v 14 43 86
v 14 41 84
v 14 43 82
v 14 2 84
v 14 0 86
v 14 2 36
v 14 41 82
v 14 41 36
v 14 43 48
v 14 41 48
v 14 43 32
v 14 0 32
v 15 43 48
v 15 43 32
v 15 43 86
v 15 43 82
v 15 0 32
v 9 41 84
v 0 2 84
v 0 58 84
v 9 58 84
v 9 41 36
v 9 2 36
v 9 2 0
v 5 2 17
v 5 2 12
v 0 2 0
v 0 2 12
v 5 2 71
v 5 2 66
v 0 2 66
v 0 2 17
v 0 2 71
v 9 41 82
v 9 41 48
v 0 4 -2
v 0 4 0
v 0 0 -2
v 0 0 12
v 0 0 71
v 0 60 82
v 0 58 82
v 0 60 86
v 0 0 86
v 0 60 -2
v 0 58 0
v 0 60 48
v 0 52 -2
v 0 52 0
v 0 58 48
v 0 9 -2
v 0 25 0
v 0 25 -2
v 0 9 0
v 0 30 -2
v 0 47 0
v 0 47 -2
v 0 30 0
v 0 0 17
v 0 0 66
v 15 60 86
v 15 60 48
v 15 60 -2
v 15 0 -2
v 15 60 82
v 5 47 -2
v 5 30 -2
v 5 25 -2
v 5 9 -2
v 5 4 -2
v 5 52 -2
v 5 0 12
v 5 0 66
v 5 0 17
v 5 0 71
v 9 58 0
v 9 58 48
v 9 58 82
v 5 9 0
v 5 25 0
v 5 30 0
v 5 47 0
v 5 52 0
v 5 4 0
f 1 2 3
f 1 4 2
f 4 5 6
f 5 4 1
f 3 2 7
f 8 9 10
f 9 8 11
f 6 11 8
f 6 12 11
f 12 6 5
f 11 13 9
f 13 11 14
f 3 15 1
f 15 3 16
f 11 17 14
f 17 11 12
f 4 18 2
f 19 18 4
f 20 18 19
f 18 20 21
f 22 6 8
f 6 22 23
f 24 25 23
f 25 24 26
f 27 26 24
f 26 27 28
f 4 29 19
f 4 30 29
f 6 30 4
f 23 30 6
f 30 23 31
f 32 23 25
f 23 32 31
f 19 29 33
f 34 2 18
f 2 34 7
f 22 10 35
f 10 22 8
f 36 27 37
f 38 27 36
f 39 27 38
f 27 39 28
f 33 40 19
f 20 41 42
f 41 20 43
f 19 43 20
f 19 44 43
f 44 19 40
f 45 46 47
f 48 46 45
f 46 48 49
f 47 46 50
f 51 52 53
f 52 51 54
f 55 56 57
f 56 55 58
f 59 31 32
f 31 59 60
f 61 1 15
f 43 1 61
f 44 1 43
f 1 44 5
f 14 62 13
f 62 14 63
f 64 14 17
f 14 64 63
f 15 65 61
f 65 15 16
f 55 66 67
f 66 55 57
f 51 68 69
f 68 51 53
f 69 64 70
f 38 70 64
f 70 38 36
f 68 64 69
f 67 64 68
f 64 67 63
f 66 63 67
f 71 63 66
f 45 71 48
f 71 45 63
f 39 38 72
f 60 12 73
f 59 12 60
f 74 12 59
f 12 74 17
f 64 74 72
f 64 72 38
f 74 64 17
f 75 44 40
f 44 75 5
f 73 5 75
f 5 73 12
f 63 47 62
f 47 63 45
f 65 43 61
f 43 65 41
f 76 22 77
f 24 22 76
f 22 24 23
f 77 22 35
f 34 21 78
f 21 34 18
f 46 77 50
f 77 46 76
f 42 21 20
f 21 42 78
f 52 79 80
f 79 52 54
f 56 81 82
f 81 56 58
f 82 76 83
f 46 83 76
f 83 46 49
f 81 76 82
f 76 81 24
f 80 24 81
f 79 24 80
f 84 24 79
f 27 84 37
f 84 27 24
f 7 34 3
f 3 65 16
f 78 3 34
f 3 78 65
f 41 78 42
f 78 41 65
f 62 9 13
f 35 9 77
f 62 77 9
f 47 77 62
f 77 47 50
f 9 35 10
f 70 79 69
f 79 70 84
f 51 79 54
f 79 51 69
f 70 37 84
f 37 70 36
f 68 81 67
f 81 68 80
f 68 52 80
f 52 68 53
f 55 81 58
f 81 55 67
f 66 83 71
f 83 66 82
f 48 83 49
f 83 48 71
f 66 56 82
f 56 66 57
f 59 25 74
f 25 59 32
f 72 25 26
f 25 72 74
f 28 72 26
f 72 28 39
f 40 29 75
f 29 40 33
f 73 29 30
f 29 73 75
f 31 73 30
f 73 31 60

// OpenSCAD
difference() {
    translate([0, 0, -2]){
        cube([15, 60, 88]);
    }
    
    // Aushöhlen der Rechtecke
    translate([-1, 2, 0]) {
        cube([10, 56, 84]);
    }
    translate([-1, 2, 36]) {
        cube([100, 39, 48]);
    }
    
    // Aussparung fuer Display
    translate([-1, 40, 48]) { 
        cube([20, 21, 34]);
    }
    
    difference() {
        translate([14, -1, 32]) {
            cube([87, 44, 55]);
        }
        translate([-1, 2, 36]) {
            cube([100, 39, 48]);
        }
    }
    
    // Aussparungen für Pinökel am Breadboard
    translate([-1, 4, -3]) { 
        cube([6, 5, 4]);
    }
    translate([-1, 25, -3]) { 
        cube([6, 5, 4]);
    }
    translate([-1, 47, -3]) { 
        cube([6, 5, 4]);
    }
    
    translate([-1, -1, 12]) { 
        cube([6, 4, 5]);
    }
    translate([-1, -1, 66]) { 
        cube([6, 4, 5]);
    }
}
